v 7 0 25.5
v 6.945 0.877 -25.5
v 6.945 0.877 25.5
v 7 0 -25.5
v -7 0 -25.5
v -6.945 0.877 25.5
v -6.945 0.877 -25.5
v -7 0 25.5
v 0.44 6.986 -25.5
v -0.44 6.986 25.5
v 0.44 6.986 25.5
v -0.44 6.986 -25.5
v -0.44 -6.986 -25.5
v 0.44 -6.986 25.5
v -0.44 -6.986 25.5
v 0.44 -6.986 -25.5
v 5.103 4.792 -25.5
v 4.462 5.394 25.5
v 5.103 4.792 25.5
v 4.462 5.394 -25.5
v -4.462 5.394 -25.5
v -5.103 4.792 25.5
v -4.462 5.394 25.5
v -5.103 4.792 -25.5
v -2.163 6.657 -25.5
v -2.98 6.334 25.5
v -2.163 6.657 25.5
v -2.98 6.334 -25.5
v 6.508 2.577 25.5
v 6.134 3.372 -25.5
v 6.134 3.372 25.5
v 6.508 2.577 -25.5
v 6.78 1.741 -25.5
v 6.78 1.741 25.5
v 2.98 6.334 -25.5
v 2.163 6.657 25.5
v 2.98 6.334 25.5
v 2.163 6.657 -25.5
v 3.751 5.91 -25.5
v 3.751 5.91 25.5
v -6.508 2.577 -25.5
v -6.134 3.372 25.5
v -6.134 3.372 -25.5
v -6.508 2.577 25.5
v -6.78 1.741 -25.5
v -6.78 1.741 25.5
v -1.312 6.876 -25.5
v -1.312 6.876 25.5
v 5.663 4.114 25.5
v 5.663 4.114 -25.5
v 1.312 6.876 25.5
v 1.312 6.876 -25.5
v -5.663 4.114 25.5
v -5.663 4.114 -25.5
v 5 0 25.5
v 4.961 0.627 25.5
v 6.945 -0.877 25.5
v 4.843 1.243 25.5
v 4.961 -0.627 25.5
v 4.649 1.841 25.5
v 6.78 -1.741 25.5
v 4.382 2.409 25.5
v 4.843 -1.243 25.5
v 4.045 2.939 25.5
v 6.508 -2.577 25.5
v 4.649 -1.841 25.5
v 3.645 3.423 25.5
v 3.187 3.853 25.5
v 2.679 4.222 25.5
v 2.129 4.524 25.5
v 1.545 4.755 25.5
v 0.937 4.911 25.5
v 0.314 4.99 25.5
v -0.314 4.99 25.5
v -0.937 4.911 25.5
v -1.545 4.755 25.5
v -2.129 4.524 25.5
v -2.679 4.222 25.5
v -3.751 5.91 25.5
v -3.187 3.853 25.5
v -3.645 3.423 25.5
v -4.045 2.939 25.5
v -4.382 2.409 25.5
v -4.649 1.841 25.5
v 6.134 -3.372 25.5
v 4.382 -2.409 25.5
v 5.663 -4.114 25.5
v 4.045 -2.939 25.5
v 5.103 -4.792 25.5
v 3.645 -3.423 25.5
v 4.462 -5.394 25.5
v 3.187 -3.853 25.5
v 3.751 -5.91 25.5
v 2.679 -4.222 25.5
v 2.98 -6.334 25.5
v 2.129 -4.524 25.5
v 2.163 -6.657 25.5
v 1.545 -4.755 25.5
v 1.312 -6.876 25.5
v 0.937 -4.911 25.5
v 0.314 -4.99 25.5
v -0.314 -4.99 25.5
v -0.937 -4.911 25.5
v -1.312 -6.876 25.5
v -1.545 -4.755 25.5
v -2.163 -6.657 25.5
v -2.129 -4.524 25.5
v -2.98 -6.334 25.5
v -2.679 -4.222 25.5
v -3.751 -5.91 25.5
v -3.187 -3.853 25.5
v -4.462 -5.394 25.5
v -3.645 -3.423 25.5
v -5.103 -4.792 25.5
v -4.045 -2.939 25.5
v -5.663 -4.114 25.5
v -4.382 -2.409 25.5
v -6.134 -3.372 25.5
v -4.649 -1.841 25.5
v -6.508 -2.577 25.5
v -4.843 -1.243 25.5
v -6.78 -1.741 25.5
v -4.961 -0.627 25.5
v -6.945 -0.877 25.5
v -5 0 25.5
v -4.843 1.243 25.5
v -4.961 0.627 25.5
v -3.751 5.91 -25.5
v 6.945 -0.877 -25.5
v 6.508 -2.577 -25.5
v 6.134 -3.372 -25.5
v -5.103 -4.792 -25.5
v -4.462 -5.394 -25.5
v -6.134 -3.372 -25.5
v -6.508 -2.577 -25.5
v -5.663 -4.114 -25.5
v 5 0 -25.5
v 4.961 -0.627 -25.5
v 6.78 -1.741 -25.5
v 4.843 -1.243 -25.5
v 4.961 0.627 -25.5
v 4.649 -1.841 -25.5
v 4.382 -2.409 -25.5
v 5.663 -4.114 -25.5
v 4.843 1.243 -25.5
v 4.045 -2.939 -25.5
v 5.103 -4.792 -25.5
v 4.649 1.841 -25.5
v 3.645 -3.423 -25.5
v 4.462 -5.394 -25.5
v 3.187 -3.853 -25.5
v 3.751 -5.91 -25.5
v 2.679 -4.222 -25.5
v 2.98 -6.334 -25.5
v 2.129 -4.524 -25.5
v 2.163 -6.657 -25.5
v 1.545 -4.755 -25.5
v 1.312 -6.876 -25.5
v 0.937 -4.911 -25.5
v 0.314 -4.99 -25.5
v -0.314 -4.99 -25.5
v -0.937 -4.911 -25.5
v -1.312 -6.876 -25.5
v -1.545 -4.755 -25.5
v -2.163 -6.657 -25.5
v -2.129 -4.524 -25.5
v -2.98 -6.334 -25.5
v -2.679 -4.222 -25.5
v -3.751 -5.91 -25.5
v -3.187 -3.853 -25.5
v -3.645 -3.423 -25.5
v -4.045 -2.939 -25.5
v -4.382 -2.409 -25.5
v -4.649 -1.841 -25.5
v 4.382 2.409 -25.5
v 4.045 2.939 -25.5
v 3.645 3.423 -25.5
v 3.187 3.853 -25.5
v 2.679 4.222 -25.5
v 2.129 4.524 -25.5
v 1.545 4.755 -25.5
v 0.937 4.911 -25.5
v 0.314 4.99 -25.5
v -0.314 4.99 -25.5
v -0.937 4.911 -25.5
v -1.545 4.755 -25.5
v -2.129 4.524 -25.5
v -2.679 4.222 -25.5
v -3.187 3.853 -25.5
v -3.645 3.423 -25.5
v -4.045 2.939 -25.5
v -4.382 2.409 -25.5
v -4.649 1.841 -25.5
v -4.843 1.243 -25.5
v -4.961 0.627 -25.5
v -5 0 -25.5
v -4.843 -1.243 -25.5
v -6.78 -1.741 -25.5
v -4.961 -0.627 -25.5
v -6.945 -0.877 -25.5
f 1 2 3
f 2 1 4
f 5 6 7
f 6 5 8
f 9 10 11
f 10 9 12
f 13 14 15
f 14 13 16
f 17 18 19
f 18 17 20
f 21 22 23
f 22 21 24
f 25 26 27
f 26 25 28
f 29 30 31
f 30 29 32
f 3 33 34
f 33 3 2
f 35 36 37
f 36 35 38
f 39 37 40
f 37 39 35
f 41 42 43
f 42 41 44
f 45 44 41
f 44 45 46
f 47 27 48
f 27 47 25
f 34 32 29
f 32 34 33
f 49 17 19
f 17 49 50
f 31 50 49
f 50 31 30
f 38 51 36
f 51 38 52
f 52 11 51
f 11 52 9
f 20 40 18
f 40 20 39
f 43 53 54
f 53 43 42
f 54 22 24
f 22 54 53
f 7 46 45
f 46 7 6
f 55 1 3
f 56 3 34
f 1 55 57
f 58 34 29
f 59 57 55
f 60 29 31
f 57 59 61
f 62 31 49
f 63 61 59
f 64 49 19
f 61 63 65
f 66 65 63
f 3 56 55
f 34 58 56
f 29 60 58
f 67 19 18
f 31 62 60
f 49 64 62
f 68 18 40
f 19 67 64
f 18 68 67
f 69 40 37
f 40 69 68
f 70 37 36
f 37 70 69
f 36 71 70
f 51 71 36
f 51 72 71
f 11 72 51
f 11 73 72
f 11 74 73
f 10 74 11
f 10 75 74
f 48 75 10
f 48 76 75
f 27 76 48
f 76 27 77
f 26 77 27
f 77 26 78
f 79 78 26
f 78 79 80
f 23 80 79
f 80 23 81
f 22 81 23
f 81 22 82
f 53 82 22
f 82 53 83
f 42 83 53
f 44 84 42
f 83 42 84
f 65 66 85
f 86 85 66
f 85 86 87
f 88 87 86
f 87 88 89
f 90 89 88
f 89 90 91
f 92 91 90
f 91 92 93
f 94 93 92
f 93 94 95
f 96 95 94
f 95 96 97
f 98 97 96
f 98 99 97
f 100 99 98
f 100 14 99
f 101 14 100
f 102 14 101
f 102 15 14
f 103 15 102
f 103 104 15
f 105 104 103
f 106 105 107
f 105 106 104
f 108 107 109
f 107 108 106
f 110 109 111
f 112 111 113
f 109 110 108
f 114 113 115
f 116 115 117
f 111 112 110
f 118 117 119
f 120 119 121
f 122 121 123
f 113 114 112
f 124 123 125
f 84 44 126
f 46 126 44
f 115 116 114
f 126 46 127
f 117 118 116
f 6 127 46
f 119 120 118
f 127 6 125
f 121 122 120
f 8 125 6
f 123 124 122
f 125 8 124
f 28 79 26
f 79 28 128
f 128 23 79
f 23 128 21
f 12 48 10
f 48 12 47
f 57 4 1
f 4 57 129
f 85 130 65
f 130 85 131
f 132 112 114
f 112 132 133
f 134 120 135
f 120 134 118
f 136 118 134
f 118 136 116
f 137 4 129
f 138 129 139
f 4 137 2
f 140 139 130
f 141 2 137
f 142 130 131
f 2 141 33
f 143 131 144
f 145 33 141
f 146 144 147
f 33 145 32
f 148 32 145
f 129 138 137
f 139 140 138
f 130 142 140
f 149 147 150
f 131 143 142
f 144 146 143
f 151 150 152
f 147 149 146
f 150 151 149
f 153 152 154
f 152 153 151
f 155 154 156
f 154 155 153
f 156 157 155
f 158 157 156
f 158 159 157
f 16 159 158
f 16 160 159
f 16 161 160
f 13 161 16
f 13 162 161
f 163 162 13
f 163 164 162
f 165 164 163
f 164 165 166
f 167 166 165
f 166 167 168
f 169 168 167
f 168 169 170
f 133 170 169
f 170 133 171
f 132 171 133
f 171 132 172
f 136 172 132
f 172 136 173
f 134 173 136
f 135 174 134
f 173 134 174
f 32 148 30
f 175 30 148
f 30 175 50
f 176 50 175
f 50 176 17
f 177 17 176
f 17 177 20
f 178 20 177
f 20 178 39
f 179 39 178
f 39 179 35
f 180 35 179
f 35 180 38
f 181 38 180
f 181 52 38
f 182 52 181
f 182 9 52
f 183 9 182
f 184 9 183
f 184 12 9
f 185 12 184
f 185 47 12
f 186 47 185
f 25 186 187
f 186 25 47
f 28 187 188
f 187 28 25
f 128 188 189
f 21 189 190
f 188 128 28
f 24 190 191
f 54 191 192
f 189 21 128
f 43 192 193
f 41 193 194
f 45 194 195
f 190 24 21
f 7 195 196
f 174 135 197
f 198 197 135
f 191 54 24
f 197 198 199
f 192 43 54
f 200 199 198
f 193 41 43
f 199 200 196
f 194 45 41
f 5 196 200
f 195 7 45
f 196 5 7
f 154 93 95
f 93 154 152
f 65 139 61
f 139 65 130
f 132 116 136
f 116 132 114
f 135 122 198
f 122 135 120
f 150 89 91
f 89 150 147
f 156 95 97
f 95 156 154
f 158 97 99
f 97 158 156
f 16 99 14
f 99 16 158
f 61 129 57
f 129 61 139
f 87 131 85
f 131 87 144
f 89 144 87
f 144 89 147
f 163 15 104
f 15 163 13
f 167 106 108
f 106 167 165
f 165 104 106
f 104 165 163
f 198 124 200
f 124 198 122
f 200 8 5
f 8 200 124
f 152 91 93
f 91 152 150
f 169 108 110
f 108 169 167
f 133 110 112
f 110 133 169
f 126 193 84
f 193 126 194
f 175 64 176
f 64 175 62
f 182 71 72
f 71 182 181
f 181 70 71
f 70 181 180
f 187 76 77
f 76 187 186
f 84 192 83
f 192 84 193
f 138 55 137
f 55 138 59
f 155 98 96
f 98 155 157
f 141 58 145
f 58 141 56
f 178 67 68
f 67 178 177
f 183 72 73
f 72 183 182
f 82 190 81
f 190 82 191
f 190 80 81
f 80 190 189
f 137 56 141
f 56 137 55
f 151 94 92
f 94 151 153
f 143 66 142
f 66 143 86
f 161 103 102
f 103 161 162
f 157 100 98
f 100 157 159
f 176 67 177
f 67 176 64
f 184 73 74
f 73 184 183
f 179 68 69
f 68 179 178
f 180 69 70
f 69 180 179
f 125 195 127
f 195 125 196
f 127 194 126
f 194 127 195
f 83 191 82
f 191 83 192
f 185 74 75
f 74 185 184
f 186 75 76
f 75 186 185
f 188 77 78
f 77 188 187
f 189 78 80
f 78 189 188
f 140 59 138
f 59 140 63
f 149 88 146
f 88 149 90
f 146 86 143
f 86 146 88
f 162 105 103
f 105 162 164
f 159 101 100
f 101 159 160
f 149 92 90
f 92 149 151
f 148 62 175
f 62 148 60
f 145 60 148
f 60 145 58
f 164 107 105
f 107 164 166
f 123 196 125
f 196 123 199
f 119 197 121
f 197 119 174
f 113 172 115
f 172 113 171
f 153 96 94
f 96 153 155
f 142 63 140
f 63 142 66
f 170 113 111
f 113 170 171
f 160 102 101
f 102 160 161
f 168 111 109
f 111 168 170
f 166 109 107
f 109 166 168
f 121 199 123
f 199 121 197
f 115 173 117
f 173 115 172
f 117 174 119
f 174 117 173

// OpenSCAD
$fn = 50;


difference() {
	union() {
		translate(v = [0, 0, -25.5000000000]) {
			cylinder(h = 51, r = 7.0000000000);
		}
	}
	union() {
		translate(v = [0, 0, -100.0000000000]) {
			cylinder(h = 200, r = 5);
		}
	}
}
